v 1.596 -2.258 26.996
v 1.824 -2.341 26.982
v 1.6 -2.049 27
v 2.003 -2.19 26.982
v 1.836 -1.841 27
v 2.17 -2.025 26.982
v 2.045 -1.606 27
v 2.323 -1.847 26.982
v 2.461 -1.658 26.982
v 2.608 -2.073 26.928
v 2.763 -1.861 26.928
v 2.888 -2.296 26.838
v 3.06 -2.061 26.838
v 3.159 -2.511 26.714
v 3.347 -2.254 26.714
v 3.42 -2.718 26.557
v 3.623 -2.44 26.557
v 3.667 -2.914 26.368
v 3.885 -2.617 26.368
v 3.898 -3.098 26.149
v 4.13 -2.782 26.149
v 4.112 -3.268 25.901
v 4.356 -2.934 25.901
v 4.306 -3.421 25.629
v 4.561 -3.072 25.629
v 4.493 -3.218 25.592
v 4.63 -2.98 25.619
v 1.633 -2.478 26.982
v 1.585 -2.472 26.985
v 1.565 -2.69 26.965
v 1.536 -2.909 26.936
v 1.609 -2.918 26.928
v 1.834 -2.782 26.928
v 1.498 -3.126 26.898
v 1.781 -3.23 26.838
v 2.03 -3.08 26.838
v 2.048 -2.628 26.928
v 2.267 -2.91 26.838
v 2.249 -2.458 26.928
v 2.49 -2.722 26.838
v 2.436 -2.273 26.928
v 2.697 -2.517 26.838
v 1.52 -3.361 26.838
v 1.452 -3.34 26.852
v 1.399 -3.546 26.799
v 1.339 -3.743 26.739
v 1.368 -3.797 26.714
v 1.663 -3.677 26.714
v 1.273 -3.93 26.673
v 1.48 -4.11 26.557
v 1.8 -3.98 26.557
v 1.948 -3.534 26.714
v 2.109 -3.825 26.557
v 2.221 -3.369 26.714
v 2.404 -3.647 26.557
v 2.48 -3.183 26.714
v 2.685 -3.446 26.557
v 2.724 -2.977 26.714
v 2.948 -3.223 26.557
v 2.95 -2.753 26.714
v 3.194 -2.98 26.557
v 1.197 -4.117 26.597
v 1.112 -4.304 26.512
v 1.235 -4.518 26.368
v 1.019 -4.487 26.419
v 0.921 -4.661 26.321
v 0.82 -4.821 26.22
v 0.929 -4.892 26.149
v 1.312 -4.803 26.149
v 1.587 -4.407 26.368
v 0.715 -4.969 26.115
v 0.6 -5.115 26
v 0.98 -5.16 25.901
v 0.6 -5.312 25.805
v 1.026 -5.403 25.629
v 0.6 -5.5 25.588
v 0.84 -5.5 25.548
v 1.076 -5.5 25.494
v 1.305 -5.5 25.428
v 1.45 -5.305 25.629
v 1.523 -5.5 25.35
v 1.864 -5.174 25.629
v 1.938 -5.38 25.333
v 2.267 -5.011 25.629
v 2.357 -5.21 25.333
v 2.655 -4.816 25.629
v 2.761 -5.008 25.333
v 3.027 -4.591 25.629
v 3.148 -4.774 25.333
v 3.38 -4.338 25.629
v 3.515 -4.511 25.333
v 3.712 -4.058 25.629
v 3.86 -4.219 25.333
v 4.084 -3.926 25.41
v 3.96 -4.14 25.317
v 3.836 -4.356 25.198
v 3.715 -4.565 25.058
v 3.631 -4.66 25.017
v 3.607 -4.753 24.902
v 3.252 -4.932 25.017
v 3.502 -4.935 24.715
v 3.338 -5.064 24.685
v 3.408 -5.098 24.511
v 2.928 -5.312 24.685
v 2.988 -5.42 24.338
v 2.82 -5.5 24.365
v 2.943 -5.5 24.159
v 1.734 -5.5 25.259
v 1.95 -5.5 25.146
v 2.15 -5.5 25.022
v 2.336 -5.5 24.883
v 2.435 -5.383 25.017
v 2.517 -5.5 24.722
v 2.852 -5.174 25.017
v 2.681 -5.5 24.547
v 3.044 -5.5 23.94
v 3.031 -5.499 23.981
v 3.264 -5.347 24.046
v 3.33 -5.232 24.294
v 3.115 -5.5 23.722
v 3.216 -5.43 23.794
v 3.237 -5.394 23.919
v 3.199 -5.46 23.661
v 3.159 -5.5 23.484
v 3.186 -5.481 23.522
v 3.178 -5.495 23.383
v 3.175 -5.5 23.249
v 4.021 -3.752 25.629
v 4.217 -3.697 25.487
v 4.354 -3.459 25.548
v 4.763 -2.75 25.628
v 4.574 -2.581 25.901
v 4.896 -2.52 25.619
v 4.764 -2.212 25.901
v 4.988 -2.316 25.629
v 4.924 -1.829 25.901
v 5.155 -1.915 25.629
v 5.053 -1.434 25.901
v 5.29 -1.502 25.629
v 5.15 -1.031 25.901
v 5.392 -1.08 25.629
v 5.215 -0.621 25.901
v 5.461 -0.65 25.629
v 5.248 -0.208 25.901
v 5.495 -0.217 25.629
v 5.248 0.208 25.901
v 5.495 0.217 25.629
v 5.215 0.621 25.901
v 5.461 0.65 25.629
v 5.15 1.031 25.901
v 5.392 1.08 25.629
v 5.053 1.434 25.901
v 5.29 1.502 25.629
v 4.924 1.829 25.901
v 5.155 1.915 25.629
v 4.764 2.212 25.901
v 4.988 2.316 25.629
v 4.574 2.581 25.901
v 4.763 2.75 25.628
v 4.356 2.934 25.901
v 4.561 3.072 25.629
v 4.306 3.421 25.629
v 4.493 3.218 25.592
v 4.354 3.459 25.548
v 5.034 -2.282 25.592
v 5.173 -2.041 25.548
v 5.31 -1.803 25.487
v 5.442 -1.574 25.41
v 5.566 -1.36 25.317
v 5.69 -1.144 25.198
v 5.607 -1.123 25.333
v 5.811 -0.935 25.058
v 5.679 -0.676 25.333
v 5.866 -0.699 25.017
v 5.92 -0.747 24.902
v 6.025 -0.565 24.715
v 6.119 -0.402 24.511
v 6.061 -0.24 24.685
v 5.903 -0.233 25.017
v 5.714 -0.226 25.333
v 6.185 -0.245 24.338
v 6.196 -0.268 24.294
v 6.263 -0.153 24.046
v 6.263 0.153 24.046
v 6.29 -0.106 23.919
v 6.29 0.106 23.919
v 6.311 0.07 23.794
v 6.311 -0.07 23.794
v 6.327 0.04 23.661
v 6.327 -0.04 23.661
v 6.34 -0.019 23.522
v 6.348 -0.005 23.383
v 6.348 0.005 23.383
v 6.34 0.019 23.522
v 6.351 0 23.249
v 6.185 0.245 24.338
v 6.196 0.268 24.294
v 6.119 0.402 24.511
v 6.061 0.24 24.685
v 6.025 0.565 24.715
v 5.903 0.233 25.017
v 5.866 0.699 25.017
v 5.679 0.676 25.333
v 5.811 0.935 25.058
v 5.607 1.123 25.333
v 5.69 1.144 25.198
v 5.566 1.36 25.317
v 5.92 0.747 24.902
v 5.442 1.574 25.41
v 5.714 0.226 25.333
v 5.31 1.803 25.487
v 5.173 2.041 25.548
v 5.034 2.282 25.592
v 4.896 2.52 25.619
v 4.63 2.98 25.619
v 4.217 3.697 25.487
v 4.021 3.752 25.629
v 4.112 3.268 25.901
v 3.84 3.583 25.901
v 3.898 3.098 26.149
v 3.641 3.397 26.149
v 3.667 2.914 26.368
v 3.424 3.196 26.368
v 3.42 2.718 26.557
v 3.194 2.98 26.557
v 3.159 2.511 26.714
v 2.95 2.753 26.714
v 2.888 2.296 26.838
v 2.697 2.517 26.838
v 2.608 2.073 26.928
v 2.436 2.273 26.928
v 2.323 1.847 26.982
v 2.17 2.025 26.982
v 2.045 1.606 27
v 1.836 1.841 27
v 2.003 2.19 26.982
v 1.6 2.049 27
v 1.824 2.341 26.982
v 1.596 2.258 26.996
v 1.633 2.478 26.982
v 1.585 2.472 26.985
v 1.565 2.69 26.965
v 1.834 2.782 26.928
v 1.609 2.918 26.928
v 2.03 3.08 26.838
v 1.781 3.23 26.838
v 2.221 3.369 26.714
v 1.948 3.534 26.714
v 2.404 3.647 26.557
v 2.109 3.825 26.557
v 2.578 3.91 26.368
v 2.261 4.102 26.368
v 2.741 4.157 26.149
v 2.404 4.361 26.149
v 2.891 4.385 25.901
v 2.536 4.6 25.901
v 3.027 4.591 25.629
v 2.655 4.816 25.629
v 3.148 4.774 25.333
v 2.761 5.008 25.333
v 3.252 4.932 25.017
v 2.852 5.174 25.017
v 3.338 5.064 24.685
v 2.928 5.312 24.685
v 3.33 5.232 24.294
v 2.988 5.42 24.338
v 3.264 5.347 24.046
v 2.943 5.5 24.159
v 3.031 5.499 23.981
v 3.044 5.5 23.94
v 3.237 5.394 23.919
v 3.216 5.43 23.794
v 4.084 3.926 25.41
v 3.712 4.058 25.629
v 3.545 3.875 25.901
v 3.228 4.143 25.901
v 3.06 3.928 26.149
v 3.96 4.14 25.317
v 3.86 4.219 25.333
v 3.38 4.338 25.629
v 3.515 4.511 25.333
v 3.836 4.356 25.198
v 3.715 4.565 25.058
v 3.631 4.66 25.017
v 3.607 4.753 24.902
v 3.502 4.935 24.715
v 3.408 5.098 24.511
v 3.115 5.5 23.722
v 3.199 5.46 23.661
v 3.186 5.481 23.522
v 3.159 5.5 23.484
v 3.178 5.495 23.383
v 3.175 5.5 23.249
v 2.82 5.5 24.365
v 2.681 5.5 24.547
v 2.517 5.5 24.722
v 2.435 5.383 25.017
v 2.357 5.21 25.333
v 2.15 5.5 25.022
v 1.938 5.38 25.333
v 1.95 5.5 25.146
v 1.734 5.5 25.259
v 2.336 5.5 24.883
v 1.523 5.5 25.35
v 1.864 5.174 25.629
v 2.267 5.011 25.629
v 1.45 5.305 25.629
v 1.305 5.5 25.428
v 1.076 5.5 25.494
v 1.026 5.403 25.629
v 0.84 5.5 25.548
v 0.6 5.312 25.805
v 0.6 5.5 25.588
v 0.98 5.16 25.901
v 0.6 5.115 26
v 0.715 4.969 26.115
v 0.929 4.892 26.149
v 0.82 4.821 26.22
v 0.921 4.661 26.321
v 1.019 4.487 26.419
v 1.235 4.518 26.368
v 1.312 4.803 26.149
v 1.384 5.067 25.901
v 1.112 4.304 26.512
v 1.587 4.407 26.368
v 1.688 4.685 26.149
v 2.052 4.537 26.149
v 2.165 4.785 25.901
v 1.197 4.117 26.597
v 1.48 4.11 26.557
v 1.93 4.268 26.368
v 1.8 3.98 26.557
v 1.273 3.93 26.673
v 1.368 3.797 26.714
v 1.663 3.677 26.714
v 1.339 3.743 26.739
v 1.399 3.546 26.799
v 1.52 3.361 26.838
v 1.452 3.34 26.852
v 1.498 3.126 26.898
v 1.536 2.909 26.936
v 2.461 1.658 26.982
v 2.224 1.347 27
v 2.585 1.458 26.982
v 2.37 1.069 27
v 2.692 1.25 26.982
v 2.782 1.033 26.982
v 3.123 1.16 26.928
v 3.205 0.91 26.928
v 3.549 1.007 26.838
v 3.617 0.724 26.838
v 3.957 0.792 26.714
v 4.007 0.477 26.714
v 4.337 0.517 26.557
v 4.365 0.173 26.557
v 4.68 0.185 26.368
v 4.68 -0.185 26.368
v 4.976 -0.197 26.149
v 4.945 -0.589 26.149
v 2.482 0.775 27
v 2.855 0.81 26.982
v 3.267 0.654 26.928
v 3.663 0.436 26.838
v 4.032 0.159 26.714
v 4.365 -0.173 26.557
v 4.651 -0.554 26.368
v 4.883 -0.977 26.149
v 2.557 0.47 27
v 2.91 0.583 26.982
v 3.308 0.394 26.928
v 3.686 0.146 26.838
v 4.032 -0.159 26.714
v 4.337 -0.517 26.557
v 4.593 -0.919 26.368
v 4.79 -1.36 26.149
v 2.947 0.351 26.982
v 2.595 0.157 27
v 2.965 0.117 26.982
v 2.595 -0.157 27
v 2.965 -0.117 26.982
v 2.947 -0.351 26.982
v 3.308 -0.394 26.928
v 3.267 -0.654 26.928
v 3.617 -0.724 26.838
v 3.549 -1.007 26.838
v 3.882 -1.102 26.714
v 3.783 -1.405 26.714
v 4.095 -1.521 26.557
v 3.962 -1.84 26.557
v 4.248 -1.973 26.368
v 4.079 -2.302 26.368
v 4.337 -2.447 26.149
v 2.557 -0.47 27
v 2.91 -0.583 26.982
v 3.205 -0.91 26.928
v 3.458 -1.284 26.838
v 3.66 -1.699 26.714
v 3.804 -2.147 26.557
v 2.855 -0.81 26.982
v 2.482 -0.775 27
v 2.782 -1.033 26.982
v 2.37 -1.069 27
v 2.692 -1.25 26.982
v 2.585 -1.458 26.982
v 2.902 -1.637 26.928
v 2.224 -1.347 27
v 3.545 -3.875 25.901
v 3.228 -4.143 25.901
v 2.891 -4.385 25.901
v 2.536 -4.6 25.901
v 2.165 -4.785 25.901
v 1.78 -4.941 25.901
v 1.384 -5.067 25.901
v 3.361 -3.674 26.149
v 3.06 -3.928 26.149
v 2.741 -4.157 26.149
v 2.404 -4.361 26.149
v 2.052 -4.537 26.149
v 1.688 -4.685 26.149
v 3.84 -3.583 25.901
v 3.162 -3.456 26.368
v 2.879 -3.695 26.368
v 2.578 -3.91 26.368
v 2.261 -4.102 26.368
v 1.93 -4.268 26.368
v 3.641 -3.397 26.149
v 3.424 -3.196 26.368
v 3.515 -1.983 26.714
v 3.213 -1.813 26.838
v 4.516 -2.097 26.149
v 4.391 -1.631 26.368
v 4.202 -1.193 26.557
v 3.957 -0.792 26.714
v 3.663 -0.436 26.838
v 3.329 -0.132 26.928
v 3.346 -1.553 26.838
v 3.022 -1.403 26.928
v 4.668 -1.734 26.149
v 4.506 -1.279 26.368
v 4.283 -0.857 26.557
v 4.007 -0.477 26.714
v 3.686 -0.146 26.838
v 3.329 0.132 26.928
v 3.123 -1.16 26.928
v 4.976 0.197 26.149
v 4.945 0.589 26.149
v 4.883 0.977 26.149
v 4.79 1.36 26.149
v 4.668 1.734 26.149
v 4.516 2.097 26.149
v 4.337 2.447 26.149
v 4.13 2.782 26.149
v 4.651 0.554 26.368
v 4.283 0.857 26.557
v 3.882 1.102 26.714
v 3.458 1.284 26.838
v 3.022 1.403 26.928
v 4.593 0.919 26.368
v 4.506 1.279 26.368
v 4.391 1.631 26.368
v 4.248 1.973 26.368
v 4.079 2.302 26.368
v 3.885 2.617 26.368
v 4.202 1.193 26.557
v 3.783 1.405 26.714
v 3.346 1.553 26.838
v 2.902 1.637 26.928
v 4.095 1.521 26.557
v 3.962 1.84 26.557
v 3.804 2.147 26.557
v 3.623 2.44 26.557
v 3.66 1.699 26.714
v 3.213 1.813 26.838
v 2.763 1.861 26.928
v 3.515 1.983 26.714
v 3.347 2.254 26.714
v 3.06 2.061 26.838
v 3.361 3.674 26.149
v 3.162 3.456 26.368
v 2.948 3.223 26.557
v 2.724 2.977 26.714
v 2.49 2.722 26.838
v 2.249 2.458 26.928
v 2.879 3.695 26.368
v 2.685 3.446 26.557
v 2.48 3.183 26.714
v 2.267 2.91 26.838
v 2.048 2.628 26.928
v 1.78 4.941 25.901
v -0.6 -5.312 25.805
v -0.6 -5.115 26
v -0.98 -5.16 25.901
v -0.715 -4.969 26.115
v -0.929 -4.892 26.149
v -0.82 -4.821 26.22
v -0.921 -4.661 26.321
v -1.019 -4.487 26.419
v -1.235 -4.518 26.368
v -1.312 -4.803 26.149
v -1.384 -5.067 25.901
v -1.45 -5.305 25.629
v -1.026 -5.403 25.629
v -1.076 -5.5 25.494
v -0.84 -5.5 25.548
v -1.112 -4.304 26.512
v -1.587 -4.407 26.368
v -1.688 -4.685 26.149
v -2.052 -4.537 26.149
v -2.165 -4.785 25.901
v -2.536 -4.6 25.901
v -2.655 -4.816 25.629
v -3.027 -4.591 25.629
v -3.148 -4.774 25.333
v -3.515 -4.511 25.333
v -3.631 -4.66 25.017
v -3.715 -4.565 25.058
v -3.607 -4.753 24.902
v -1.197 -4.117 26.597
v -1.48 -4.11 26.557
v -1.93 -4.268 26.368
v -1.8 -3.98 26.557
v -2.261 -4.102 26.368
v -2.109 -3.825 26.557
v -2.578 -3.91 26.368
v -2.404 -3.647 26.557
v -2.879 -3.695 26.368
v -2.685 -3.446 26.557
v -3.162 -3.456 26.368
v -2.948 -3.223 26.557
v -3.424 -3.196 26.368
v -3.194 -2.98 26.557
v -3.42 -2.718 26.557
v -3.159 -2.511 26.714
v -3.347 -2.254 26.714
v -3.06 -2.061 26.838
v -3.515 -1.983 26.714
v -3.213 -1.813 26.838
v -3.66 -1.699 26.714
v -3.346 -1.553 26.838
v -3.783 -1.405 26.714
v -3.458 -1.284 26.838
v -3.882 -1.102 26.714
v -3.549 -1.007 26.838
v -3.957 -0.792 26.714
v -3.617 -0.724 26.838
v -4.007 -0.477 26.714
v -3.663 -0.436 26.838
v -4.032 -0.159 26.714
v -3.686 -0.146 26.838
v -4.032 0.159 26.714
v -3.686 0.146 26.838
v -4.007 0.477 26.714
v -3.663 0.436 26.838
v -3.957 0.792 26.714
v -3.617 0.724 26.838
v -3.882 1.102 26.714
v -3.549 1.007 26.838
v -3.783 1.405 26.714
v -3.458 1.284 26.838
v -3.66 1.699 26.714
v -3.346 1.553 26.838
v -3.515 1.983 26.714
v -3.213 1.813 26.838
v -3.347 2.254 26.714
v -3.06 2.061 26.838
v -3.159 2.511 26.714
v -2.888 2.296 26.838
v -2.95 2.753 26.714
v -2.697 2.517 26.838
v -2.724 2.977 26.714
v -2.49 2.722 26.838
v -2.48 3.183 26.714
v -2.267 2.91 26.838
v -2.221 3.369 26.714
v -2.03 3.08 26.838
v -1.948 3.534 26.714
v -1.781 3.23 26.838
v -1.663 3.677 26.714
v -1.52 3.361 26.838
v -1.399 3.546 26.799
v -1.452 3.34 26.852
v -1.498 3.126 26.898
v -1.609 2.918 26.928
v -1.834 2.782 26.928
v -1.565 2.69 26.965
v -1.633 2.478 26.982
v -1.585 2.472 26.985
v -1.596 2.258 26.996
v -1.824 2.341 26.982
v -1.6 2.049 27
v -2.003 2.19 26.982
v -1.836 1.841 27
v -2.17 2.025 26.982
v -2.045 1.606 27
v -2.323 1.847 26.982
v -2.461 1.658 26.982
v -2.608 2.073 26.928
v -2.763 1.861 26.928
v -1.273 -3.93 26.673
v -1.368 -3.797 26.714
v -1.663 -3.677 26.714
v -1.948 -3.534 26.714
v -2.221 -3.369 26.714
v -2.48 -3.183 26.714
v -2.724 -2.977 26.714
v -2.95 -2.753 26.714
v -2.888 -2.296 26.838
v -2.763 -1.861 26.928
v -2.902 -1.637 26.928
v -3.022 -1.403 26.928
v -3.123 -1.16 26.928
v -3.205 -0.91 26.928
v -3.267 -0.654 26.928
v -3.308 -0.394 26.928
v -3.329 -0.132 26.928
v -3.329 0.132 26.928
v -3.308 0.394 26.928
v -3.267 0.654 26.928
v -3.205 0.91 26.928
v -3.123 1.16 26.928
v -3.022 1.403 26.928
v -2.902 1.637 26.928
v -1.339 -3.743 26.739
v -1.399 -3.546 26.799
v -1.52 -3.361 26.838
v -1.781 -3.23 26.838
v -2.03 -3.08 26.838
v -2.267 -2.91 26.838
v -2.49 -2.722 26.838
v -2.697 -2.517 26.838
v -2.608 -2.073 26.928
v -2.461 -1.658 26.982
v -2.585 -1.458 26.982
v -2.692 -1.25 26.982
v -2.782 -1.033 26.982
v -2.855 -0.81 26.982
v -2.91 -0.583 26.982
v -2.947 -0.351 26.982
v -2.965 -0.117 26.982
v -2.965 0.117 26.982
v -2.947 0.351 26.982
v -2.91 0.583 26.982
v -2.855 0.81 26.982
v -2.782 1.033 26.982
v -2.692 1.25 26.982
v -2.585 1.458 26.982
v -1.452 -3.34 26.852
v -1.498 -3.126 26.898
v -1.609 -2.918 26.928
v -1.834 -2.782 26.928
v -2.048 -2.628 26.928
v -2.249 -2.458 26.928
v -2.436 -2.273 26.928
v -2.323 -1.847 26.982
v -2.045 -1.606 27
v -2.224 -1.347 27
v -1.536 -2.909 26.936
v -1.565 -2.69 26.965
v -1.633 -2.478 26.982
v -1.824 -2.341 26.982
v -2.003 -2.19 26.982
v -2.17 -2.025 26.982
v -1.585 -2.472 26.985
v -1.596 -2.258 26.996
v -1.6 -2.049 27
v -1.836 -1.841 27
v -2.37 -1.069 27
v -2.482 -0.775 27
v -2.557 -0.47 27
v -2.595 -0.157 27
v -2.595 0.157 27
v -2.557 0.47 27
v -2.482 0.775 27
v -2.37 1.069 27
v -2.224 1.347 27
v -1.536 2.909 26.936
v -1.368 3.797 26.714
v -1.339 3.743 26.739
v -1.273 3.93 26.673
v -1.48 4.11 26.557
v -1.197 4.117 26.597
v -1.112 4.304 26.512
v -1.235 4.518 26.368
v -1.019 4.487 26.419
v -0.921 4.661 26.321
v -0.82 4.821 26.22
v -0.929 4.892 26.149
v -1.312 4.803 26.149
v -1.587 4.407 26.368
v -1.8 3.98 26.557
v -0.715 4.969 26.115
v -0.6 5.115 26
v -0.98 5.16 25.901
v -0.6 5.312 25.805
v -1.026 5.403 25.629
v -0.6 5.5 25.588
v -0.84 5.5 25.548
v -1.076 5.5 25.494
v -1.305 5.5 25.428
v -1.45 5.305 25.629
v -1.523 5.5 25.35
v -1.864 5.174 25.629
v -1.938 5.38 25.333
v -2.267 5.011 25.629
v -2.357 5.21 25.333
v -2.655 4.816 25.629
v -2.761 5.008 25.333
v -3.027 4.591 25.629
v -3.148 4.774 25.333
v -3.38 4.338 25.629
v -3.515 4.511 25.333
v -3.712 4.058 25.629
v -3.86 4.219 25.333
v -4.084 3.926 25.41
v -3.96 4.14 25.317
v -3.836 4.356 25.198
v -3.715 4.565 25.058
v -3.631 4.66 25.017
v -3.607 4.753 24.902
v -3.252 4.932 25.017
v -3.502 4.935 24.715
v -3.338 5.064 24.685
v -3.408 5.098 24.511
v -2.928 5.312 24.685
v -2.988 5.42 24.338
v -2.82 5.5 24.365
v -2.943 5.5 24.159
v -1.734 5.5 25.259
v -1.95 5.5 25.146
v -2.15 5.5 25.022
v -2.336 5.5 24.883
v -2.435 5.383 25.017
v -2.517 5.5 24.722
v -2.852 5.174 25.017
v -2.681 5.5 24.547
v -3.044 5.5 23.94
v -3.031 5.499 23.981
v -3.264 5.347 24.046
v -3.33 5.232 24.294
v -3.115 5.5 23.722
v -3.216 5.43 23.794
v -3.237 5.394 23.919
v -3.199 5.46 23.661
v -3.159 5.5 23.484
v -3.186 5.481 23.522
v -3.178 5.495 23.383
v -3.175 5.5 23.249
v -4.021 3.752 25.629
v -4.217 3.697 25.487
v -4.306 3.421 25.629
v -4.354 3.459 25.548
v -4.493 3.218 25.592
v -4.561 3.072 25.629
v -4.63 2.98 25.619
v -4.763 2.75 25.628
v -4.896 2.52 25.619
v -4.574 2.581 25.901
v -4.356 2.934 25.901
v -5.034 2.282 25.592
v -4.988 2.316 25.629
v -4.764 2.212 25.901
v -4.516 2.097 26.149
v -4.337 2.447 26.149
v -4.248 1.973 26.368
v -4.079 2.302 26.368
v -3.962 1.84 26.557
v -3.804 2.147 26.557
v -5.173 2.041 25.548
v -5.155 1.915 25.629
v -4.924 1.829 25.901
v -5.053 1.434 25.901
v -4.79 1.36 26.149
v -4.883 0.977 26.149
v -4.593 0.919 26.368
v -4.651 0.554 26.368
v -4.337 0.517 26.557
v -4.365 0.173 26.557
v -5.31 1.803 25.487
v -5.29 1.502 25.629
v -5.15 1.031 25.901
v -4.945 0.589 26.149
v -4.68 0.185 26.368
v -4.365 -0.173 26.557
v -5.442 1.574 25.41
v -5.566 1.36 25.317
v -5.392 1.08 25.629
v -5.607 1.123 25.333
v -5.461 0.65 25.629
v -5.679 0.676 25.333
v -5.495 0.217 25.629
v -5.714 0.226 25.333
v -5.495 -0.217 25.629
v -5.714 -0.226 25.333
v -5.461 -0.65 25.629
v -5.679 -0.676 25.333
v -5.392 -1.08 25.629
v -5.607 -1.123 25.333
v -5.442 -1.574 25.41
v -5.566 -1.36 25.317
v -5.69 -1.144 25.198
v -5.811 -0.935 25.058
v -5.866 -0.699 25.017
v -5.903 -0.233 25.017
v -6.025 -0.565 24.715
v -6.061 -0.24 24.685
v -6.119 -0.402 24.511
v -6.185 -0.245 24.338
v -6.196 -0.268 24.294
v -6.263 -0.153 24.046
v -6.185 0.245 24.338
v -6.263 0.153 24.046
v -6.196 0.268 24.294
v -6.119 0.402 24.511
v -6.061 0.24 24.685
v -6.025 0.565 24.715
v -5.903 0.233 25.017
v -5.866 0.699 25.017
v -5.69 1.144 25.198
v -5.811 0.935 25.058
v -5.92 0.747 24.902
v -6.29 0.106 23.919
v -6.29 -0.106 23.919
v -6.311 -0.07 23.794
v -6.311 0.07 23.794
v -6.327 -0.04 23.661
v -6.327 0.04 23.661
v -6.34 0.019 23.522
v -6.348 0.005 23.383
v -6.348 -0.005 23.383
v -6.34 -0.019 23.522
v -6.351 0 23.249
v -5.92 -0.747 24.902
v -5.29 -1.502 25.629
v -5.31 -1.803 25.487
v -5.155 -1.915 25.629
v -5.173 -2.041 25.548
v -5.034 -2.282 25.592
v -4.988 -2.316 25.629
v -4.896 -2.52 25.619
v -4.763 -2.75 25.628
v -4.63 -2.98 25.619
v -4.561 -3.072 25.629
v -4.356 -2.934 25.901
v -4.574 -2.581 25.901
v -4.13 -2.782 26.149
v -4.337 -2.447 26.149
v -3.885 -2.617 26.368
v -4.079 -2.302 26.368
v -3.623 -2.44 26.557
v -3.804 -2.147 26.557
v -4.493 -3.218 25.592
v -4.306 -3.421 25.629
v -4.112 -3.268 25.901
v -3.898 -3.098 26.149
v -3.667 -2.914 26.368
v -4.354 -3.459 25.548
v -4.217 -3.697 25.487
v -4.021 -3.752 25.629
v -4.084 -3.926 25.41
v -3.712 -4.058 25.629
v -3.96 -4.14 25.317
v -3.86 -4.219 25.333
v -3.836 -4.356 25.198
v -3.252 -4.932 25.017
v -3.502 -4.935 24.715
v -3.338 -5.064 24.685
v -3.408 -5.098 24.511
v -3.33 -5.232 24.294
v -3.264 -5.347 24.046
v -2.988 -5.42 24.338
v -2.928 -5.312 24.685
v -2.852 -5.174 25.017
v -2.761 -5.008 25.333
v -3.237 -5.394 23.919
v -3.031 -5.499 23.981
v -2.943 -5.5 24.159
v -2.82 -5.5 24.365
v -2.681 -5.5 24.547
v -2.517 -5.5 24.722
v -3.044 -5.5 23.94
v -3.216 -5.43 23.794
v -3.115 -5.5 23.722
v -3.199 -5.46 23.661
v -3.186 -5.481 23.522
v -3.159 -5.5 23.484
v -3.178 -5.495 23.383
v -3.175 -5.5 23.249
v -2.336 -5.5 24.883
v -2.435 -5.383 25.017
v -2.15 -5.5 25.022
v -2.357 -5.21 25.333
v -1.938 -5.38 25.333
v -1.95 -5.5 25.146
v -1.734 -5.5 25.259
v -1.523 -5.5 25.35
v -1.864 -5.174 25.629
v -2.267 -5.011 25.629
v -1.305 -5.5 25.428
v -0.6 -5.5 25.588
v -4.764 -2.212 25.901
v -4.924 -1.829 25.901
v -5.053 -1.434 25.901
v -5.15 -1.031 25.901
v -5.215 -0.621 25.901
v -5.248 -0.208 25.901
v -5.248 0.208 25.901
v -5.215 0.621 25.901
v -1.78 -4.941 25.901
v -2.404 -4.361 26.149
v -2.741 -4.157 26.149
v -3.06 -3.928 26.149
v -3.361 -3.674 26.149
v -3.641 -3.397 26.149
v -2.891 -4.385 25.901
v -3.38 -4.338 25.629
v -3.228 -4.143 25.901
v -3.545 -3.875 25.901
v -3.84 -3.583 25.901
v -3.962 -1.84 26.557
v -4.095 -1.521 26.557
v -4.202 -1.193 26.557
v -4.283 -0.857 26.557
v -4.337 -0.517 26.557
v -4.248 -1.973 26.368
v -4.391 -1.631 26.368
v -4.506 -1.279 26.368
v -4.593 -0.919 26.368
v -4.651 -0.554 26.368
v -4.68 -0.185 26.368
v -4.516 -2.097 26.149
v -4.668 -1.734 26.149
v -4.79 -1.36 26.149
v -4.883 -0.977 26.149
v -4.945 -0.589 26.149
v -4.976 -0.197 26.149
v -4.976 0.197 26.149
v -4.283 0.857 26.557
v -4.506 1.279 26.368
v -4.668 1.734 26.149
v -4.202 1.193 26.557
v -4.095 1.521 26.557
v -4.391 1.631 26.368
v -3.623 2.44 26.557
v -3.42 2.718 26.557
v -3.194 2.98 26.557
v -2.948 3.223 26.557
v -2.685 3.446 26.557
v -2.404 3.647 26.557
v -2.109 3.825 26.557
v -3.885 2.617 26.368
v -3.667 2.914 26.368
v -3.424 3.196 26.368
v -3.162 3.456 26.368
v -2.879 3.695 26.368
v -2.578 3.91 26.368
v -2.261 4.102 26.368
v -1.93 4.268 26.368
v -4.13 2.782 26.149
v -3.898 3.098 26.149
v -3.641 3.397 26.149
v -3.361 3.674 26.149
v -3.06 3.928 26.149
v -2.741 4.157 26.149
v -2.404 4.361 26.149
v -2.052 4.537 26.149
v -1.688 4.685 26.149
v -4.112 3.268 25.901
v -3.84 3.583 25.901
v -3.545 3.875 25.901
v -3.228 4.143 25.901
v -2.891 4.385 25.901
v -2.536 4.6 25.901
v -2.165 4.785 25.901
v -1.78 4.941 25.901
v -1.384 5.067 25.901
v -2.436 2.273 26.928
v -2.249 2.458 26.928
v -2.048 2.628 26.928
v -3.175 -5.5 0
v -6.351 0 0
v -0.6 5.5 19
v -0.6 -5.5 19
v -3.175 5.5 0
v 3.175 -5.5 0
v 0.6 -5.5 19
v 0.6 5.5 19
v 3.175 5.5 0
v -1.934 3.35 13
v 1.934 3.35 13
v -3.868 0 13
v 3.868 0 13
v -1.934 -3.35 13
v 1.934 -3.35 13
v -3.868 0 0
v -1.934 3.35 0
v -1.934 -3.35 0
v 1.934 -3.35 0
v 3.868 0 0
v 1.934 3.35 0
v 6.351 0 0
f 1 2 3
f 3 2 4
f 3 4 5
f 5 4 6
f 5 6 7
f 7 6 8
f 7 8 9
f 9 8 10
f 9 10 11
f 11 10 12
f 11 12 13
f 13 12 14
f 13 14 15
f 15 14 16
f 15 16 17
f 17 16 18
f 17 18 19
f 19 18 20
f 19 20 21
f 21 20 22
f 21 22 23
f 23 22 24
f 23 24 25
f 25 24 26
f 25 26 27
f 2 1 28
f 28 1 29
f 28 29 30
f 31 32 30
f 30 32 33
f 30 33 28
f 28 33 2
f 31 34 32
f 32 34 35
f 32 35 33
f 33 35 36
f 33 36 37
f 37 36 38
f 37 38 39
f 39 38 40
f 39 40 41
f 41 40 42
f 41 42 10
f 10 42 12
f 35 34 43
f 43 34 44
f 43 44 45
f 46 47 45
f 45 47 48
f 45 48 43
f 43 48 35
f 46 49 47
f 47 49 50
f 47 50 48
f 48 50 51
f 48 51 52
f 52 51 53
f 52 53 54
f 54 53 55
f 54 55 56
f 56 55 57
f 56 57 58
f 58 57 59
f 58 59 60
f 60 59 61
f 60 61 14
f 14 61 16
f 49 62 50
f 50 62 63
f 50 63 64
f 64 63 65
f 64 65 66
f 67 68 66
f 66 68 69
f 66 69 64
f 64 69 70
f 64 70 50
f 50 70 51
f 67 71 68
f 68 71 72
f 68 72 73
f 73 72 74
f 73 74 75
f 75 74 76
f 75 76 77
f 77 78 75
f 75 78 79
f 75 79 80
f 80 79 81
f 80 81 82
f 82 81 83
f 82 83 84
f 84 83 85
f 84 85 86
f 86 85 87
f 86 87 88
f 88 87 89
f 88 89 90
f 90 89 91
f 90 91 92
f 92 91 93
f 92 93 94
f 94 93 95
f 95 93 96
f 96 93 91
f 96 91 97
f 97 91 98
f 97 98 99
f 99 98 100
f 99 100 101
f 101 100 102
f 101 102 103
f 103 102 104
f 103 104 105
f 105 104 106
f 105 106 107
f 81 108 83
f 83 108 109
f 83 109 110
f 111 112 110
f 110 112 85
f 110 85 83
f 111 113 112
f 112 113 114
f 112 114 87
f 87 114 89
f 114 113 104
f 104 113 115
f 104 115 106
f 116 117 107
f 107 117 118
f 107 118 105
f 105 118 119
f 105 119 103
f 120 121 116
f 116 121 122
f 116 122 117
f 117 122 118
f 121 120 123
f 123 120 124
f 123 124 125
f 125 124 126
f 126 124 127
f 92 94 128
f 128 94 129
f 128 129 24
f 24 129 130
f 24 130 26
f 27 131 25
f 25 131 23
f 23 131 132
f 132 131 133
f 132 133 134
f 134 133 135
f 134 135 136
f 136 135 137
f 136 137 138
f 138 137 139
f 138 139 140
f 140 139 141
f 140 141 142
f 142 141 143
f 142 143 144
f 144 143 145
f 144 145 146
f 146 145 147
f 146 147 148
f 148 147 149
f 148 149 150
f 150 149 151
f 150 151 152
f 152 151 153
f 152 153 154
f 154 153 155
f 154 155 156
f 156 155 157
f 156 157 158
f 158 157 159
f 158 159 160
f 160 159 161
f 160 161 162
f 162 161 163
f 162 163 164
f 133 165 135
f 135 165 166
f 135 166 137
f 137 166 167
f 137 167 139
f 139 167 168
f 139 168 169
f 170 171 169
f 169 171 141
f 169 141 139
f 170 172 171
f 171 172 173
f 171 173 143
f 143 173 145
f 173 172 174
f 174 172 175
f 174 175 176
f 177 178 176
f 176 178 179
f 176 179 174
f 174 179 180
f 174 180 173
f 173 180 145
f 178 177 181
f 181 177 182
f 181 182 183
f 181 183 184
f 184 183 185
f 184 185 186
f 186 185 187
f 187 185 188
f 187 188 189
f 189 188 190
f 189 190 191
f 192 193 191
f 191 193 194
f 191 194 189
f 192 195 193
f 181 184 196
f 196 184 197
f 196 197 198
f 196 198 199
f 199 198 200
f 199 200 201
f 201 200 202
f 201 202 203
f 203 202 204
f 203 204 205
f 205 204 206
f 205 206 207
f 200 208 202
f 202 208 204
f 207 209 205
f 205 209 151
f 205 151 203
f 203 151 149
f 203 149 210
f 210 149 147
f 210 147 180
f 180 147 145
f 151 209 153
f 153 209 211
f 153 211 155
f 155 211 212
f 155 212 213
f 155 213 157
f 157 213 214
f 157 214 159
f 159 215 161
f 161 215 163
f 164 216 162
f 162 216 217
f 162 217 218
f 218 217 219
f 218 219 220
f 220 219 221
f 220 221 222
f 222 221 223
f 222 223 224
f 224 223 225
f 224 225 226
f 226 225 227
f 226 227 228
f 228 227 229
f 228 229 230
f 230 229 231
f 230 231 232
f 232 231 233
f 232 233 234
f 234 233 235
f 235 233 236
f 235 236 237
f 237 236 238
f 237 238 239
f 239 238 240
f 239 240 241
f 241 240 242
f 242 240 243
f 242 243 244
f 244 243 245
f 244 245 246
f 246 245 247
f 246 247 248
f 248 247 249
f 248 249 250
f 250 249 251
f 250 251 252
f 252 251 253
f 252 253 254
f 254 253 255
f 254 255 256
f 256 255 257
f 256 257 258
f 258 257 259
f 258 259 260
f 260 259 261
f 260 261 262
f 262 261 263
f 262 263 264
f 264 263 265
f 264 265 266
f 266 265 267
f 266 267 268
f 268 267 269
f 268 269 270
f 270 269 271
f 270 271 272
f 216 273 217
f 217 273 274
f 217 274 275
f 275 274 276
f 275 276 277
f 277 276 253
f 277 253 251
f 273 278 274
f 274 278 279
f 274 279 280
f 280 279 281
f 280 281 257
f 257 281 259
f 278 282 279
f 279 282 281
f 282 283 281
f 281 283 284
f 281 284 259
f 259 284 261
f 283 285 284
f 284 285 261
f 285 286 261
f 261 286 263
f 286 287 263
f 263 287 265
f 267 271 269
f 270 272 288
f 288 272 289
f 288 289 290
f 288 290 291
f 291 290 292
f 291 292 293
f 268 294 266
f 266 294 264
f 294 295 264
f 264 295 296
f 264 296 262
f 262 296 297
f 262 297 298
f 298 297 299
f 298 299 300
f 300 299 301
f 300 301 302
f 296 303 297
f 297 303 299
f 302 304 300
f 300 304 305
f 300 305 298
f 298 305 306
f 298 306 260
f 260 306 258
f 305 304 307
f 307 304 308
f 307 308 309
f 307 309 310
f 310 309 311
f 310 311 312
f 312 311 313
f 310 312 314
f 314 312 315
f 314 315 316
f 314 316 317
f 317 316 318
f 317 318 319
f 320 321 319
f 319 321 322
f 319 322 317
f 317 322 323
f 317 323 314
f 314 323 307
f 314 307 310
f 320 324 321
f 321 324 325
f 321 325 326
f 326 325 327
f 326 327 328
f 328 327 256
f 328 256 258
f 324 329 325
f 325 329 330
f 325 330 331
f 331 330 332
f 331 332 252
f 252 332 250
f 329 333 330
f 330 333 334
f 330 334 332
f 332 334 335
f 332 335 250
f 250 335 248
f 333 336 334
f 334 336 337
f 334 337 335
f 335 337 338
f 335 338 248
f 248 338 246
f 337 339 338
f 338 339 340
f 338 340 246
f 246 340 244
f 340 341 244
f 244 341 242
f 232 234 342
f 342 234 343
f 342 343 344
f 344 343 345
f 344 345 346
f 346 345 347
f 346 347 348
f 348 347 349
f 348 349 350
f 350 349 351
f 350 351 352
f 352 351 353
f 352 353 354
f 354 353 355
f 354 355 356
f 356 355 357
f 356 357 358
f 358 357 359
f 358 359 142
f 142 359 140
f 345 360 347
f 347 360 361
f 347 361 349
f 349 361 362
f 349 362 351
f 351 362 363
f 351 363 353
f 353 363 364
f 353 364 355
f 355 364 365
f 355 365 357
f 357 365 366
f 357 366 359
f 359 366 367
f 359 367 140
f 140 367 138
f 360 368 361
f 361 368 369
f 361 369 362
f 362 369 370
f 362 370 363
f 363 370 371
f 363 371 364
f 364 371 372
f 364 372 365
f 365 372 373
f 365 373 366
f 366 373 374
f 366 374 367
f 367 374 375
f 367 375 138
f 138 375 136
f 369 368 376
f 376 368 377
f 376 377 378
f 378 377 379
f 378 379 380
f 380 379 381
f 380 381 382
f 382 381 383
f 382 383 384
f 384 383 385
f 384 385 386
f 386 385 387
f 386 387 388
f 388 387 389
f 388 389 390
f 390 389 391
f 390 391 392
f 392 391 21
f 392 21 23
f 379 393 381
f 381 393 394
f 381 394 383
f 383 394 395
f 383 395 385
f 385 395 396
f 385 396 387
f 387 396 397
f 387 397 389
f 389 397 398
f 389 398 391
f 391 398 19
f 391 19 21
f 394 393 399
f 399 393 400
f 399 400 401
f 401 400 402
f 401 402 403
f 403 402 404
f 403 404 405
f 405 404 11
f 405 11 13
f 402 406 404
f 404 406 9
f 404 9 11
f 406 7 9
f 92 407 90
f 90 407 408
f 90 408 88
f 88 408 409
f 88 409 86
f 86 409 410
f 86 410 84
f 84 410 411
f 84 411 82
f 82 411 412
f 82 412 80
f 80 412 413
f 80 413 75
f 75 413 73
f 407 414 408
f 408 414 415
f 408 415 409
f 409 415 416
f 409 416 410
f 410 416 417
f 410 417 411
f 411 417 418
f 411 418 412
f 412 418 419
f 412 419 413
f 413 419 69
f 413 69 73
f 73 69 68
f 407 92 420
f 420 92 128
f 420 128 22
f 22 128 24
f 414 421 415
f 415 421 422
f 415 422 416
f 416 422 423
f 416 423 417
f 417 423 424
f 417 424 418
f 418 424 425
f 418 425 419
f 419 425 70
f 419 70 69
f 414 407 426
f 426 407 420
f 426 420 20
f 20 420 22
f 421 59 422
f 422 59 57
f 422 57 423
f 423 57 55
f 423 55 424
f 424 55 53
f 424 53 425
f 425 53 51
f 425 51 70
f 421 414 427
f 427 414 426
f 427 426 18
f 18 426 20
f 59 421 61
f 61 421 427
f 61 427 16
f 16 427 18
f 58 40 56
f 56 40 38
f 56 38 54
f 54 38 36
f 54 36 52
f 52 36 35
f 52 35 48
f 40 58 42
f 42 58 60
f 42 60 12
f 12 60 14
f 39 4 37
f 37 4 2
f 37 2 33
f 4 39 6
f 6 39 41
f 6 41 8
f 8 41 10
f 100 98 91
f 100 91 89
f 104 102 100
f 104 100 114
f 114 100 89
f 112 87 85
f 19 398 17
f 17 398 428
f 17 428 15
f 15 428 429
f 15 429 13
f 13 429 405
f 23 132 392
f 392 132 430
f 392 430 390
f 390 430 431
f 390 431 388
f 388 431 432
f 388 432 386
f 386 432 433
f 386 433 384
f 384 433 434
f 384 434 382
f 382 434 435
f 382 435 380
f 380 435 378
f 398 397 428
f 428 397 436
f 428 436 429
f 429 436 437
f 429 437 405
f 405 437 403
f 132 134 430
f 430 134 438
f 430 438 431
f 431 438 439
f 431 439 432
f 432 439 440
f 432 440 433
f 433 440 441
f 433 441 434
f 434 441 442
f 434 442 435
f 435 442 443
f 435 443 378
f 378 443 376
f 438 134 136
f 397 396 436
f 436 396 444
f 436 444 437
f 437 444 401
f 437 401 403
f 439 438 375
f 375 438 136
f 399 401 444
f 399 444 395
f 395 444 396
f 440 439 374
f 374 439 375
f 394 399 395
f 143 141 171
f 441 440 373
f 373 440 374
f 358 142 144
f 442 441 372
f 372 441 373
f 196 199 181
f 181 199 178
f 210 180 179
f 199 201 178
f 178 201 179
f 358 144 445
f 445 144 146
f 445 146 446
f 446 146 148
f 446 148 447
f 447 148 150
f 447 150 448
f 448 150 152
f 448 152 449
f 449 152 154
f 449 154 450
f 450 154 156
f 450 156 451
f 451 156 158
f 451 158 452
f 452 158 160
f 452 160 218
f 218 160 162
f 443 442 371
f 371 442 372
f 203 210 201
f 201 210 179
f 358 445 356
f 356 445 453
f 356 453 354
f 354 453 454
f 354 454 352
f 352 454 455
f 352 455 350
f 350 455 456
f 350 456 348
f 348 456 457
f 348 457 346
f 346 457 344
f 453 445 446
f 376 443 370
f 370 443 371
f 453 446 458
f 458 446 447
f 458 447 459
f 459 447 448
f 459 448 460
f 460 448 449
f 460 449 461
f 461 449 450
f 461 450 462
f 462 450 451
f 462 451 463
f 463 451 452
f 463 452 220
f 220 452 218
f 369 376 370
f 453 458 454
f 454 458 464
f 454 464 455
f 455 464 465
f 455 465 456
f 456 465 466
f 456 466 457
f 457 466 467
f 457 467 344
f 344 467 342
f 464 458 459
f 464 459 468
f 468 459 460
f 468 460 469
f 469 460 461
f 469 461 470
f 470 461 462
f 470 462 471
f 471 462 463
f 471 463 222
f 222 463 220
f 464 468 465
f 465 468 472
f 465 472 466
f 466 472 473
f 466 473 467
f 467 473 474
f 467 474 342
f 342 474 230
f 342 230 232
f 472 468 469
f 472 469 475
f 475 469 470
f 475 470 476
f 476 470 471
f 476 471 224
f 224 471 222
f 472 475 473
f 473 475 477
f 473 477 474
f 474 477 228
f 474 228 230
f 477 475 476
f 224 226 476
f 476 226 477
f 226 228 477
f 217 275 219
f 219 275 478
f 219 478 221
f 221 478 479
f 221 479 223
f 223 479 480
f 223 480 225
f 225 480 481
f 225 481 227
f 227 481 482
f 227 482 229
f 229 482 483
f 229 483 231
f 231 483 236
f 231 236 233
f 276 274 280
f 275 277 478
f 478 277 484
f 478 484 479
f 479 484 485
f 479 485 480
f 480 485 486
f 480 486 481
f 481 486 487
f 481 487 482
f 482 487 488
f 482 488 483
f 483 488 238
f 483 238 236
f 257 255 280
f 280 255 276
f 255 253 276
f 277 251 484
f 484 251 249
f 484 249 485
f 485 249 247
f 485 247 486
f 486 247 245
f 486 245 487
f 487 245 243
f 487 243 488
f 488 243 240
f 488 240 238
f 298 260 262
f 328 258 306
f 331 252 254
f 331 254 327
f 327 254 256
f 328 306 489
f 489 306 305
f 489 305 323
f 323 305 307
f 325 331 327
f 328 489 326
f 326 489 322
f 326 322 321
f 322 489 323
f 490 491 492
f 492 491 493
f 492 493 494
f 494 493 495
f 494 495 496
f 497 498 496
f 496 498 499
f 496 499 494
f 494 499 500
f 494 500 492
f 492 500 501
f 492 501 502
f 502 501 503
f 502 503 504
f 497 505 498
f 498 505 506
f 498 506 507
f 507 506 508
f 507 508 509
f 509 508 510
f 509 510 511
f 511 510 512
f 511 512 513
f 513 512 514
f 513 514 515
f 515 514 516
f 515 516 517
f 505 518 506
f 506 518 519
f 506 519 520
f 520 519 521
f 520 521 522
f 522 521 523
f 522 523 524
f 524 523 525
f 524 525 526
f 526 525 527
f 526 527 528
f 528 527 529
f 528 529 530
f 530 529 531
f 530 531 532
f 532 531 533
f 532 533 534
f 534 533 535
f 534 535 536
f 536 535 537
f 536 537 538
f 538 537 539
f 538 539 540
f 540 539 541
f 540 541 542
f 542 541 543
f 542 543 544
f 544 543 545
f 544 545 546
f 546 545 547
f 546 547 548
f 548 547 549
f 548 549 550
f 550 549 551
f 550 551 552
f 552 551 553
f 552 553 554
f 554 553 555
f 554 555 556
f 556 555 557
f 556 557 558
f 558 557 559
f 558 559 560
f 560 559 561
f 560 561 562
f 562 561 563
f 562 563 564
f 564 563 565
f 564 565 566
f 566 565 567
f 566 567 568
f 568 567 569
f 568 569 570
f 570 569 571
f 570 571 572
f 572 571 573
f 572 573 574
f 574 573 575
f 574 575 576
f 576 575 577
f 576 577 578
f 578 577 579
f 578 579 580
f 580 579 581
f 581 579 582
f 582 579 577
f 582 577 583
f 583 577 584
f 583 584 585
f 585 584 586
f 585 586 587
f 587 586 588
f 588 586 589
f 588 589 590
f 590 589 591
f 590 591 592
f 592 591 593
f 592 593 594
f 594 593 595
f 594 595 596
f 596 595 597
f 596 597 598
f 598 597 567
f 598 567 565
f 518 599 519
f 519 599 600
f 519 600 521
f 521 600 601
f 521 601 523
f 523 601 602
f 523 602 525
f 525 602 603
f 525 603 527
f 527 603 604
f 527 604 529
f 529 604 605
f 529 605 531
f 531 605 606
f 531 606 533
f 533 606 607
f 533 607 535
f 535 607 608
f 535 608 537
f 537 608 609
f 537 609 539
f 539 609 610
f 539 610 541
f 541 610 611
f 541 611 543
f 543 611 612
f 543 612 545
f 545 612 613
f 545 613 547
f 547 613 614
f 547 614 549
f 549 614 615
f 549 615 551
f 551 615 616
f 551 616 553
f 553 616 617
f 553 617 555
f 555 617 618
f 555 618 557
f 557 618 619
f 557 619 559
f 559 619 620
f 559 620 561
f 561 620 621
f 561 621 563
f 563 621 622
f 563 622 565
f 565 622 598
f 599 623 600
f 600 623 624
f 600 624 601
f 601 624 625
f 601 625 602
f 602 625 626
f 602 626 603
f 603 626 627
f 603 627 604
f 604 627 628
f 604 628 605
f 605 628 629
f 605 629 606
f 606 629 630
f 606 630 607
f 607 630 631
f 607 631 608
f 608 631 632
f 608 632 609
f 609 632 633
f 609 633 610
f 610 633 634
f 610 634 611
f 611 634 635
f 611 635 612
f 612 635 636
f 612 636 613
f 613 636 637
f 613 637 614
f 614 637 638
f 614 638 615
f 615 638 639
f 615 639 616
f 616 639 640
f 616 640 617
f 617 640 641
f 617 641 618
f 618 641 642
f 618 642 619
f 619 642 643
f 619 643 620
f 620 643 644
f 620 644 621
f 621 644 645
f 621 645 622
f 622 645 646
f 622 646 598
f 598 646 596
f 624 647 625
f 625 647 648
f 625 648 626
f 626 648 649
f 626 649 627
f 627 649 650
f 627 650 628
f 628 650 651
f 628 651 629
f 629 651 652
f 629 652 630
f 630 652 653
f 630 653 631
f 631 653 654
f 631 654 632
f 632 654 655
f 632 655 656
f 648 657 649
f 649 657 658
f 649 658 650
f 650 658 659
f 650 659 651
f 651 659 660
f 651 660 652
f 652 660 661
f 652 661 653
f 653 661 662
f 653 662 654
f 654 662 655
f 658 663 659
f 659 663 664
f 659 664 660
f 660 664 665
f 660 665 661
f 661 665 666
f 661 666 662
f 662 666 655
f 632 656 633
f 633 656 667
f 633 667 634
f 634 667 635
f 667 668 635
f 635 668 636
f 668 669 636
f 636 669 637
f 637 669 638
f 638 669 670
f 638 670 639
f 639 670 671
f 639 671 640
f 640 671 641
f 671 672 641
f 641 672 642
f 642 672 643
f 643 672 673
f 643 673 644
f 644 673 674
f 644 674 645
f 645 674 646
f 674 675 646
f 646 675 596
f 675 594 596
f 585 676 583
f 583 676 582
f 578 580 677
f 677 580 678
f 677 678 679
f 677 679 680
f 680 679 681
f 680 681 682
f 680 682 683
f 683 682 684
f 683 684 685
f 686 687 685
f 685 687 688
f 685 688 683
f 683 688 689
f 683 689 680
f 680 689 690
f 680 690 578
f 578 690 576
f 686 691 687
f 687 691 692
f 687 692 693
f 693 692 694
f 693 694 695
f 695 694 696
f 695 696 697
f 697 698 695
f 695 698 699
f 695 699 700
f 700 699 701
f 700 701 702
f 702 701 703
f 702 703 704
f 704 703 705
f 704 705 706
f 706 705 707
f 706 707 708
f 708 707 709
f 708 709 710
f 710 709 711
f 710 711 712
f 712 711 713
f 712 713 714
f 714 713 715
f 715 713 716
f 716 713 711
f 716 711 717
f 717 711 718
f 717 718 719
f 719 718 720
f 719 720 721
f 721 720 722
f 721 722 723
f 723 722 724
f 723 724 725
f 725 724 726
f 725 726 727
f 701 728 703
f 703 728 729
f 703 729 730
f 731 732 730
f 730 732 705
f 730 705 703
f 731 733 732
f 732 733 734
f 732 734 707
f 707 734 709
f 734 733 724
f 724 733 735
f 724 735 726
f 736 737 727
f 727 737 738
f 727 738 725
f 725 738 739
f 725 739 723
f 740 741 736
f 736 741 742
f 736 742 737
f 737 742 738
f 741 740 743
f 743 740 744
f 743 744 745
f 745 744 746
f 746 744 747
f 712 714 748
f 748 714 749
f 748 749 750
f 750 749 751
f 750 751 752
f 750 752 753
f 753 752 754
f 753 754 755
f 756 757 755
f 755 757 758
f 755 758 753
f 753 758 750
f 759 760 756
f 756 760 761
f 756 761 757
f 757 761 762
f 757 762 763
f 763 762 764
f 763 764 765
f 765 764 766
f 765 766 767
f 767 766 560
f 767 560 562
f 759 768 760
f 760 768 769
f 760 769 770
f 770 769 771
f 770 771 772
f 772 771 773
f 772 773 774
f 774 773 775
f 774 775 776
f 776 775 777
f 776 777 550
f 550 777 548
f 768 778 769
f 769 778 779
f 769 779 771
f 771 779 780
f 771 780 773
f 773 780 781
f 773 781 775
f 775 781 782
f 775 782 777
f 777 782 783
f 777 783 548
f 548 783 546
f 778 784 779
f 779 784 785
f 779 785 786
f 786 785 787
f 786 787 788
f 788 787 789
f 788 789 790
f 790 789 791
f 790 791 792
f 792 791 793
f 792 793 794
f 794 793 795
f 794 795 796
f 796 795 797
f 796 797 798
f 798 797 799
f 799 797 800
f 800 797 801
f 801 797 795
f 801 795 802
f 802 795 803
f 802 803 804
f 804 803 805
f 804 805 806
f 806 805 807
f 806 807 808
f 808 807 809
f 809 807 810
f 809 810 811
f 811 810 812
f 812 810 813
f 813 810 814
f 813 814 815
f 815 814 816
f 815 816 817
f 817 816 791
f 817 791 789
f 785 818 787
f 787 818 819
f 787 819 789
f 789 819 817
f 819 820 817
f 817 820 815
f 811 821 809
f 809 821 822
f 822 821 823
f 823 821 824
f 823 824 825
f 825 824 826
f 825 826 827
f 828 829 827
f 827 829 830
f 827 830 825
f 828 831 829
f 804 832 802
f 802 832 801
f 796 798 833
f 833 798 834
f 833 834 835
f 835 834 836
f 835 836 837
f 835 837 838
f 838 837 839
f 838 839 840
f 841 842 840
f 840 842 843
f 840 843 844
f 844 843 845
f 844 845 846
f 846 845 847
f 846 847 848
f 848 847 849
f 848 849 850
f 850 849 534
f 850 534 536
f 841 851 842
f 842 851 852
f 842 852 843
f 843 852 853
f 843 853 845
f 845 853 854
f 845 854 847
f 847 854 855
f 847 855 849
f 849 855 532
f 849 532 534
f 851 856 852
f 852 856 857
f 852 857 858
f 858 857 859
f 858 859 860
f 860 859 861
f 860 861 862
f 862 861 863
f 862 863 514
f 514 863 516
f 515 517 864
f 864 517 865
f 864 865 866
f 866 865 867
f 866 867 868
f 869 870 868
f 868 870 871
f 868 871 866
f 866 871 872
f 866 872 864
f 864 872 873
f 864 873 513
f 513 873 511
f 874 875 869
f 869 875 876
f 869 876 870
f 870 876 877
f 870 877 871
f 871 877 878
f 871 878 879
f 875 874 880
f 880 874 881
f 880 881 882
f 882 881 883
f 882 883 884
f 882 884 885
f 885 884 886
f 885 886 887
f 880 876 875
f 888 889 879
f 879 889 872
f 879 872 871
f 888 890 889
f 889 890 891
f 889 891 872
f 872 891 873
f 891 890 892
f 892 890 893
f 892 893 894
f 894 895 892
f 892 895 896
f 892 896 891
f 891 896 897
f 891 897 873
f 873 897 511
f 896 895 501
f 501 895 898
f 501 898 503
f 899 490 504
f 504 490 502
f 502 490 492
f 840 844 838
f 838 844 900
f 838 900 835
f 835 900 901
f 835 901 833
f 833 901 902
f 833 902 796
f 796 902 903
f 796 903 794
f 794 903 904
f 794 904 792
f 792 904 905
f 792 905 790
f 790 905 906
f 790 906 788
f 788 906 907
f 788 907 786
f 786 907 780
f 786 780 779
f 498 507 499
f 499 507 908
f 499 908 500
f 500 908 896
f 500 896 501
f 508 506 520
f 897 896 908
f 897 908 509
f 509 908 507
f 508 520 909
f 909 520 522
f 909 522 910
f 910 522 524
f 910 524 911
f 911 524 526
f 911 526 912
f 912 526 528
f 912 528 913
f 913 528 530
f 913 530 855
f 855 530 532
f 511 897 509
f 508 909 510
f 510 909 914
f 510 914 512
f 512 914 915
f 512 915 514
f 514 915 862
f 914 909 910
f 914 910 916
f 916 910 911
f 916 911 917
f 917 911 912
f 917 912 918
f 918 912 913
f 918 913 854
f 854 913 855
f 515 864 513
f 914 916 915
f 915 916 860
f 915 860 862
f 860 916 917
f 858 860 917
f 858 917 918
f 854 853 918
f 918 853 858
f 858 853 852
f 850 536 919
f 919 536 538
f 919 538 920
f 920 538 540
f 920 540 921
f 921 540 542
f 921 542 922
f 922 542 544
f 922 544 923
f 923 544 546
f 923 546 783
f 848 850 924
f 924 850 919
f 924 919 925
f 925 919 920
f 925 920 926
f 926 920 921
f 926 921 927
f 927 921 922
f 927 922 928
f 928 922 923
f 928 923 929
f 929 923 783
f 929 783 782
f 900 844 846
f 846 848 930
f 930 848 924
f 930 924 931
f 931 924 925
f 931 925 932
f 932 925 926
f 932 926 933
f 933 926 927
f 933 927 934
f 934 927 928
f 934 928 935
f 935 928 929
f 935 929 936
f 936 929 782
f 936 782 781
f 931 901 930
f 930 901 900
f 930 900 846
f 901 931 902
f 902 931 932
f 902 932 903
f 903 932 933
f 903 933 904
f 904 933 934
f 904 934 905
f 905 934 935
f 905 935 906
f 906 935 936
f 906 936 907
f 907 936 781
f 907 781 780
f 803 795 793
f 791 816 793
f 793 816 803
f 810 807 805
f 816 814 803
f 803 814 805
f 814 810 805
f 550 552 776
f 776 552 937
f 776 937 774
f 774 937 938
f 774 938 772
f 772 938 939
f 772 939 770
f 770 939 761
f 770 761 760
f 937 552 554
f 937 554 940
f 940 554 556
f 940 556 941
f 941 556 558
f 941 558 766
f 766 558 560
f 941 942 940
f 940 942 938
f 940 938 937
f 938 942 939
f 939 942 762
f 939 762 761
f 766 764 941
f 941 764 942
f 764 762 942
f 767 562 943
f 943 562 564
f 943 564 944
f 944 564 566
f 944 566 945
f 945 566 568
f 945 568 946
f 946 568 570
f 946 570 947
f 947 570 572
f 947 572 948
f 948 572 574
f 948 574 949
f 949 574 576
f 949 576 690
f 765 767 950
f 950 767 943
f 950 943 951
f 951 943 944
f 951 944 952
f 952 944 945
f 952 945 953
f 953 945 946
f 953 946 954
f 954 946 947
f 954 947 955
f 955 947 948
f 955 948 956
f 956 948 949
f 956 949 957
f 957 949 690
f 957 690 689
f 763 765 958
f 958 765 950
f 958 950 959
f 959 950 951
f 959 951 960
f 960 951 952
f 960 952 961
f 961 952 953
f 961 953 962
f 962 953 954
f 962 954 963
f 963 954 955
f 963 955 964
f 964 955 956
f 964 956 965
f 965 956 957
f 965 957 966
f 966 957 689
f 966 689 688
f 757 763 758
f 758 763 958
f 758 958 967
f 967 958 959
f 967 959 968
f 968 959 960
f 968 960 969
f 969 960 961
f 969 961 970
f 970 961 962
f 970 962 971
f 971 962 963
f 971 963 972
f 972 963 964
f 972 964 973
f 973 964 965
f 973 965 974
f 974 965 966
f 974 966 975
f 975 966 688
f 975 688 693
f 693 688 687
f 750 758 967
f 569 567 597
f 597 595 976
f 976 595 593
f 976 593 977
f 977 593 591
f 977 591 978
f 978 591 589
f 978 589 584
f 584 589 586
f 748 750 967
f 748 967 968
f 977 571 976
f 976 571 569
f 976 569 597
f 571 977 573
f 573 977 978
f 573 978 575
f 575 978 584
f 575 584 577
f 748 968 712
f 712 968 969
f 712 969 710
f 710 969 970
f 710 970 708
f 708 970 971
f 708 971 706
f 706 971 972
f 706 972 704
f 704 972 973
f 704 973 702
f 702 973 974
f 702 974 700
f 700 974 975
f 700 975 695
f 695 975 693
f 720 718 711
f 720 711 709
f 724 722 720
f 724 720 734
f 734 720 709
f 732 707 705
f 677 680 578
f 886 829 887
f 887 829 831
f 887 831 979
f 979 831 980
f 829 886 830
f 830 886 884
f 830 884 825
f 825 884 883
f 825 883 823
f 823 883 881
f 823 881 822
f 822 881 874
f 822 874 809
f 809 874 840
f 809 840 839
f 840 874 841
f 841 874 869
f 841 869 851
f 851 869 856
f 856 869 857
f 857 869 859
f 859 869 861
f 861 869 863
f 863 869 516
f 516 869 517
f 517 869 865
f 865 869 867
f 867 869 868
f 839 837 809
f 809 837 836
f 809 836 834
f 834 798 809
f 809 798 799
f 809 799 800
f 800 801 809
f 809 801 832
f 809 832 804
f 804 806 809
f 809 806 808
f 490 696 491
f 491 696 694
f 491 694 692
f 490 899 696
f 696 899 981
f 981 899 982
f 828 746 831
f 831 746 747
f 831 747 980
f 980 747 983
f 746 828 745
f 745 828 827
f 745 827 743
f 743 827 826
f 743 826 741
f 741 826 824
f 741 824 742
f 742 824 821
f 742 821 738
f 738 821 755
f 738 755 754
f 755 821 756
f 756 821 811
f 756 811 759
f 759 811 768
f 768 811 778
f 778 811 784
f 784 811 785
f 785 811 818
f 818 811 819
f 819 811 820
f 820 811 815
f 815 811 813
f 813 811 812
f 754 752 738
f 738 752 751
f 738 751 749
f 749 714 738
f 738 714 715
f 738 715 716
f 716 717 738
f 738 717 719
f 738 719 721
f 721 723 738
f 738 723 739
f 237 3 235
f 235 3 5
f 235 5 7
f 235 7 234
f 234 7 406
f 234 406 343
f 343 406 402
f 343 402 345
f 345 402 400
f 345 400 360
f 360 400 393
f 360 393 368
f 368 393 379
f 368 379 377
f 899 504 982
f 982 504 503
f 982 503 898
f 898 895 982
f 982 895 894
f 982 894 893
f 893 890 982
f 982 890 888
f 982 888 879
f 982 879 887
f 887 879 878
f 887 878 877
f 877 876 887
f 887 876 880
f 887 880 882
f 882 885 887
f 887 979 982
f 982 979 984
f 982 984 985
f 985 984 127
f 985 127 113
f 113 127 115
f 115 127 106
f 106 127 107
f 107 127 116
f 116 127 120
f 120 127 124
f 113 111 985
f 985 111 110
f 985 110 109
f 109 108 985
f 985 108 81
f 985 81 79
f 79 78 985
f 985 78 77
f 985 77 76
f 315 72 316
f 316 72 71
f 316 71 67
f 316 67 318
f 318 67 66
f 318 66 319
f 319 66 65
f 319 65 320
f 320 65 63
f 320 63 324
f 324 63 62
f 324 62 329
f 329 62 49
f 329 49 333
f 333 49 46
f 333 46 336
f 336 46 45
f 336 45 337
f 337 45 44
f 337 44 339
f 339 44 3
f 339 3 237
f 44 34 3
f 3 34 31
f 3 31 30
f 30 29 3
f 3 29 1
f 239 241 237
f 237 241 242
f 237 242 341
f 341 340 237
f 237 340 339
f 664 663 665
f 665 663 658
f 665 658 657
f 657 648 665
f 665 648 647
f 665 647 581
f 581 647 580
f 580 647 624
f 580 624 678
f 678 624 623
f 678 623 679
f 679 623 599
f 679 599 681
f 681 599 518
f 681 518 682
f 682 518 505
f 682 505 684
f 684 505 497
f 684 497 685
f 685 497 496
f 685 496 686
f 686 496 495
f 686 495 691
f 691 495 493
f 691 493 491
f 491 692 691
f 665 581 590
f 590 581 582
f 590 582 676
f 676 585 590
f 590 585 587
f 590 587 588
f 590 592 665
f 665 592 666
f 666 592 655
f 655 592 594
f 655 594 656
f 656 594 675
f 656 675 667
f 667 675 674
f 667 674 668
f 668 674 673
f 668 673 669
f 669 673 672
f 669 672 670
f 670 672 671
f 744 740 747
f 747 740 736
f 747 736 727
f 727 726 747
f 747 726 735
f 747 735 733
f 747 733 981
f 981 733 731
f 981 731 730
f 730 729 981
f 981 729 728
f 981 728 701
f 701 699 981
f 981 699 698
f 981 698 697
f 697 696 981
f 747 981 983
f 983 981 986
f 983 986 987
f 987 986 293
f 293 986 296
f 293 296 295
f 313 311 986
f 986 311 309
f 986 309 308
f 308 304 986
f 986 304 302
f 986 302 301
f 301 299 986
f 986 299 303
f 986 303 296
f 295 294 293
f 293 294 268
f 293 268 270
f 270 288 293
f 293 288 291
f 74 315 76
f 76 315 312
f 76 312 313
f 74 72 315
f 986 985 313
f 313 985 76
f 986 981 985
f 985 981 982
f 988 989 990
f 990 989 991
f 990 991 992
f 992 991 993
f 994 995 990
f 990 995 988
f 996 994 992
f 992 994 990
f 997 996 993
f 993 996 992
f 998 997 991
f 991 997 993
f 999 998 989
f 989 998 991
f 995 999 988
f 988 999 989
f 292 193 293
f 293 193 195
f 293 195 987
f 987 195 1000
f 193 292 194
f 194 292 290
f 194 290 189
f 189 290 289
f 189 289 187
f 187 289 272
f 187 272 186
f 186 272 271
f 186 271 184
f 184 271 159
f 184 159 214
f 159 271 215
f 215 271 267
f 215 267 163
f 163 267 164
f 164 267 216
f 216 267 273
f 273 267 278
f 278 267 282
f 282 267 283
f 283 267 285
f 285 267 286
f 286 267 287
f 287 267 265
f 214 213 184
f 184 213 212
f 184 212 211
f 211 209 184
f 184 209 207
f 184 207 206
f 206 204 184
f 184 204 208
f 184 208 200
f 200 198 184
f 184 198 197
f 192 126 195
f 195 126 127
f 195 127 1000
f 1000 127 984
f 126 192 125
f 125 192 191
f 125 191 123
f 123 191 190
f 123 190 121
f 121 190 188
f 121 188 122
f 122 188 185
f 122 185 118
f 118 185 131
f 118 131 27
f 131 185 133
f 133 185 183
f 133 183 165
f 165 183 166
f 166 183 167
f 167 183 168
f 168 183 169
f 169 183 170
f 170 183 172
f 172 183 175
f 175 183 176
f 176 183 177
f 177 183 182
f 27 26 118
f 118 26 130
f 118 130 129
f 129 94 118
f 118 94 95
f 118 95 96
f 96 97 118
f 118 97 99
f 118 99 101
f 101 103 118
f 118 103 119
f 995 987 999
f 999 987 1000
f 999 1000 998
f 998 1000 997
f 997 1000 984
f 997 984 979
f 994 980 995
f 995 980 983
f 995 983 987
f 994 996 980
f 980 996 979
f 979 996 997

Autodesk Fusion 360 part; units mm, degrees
sketch "Sketch1" plane through (0, 0, 0) normal (0, 0, 1) x (1, 0, 0)
  line L0 (-1.9341, 3.35) -> (-3.8682, 0)
  line L1 (-3.8682, 0) -> (-1.9341, -3.35)
  line L2 (-1.9341, -3.35) -> (1.9341, -3.35)
  line L3 (1.9341, -3.35) -> (3.8682, 0)
  line L4 (3.8682, 0) -> (1.9341, 3.35)
  line L5 (1.9341, 3.35) -> (-1.9341, 3.35)
  line L6 (-0.6, 5.5) -> (-0.6, -5.5)
  line L7 (0, 2.5) -> (0, 20) construction
  line L8 (0.6, 5.5) -> (0.6, -5.5)
  line L9 (-6.3509, 0) -> (-3.1754, -5.5)
  line L10 (-3.1754, -5.5) -> (3.1754, -5.5)
  line L11 (3.1754, -5.5) -> (6.3509, 0)
  line L12 (6.3509, 0) -> (3.1754, 5.5)
  line L13 (3.1754, 5.5) -> (-3.1754, 5.5)
  line L14 (-3.1754, 5.5) -> (-6.3509, 0)
  dimension "d1" = 6.7
  dimension "d3" = 1.2
  dimension "d14" = 11
extrude "Extrude1" add sketch "Sketch1" along normal blind 13 contours L0 L1 L2 L5 L6 L9 L10 L13 L14 | L5 L6 L8 L13 | L2 L3 L4 L5 L8 L10 L11 L12 L13 | L2 L6 L8 L10
extrude "Extrude2" add sketch "Sketch1" along normal blind 6 from surface at 13
extrude "Extrude3" add sketch "Sketch1" along normal blind 8 from surface at 19 contours L0 L1 L2 L5 L6 | L0 L1 L2 L5 L6 L9 L10 L13 L14 | L2 L3 L4 L5 L8 L10 L11 L12 L13 | L2 L3 L4 L5 L8
chamfer "Chamfer1" distance 1 angle 45 2 edges at (0.6, 0, 27) (-0.6, 0, 27)
sketch "Sketch2" plane through (0, 0, 0) normal (0, 1, 0) x (1, 0, 0)
  line L0 (3.8682, -13) -> (-3.8682, -13)
  line L1 (-3.8682, -13) -> (-3.8682, 0)
  line L2 (-3.8682, 0) -> (-6.3509, 0)
  line L3 (-6.3509, 0) -> (-6.3509, -27)
  line L4 (-6.3509, -27) -> (-1.6, -27)
  line L5 (-1.6, -27) -> (-0.6, -26)
  line L6 (-0.6, -26) -> (-0.6, -19)
  line L7 (-0.6, -19) -> (0.6, -19)
  line L8 (0.6, -19) -> (0.6, -26)
  line L9 (0.6, -26) -> (1.6, -27)
  line L10 (1.6, -27) -> (6.3509, -27)
  line L11 (6.3509, -27) -> (6.3509, 0)
  line L12 (6.3509, 0) -> (3.8682, 0)
  line L13 (3.8682, 0) -> (3.8682, -13)
  line L14 (-1.6, -27) -> (1.6, -27) construction
  line L15 (0, -27) -> (0, -26.8393) construction
  arc A0 (2.6, -27) -> (6.3509, -23.2491) centre (2.6, -23.2491) ccw
  line L16 (3.1754, -27) -> (1.6, -27)
  dimension "d15" = 1
revolve "Revolve1" cut sketch "Sketch2" angle 360 about axis through (0, 0, 1.75) along (0, 0, 1) contours L10 L11 A0 L16
